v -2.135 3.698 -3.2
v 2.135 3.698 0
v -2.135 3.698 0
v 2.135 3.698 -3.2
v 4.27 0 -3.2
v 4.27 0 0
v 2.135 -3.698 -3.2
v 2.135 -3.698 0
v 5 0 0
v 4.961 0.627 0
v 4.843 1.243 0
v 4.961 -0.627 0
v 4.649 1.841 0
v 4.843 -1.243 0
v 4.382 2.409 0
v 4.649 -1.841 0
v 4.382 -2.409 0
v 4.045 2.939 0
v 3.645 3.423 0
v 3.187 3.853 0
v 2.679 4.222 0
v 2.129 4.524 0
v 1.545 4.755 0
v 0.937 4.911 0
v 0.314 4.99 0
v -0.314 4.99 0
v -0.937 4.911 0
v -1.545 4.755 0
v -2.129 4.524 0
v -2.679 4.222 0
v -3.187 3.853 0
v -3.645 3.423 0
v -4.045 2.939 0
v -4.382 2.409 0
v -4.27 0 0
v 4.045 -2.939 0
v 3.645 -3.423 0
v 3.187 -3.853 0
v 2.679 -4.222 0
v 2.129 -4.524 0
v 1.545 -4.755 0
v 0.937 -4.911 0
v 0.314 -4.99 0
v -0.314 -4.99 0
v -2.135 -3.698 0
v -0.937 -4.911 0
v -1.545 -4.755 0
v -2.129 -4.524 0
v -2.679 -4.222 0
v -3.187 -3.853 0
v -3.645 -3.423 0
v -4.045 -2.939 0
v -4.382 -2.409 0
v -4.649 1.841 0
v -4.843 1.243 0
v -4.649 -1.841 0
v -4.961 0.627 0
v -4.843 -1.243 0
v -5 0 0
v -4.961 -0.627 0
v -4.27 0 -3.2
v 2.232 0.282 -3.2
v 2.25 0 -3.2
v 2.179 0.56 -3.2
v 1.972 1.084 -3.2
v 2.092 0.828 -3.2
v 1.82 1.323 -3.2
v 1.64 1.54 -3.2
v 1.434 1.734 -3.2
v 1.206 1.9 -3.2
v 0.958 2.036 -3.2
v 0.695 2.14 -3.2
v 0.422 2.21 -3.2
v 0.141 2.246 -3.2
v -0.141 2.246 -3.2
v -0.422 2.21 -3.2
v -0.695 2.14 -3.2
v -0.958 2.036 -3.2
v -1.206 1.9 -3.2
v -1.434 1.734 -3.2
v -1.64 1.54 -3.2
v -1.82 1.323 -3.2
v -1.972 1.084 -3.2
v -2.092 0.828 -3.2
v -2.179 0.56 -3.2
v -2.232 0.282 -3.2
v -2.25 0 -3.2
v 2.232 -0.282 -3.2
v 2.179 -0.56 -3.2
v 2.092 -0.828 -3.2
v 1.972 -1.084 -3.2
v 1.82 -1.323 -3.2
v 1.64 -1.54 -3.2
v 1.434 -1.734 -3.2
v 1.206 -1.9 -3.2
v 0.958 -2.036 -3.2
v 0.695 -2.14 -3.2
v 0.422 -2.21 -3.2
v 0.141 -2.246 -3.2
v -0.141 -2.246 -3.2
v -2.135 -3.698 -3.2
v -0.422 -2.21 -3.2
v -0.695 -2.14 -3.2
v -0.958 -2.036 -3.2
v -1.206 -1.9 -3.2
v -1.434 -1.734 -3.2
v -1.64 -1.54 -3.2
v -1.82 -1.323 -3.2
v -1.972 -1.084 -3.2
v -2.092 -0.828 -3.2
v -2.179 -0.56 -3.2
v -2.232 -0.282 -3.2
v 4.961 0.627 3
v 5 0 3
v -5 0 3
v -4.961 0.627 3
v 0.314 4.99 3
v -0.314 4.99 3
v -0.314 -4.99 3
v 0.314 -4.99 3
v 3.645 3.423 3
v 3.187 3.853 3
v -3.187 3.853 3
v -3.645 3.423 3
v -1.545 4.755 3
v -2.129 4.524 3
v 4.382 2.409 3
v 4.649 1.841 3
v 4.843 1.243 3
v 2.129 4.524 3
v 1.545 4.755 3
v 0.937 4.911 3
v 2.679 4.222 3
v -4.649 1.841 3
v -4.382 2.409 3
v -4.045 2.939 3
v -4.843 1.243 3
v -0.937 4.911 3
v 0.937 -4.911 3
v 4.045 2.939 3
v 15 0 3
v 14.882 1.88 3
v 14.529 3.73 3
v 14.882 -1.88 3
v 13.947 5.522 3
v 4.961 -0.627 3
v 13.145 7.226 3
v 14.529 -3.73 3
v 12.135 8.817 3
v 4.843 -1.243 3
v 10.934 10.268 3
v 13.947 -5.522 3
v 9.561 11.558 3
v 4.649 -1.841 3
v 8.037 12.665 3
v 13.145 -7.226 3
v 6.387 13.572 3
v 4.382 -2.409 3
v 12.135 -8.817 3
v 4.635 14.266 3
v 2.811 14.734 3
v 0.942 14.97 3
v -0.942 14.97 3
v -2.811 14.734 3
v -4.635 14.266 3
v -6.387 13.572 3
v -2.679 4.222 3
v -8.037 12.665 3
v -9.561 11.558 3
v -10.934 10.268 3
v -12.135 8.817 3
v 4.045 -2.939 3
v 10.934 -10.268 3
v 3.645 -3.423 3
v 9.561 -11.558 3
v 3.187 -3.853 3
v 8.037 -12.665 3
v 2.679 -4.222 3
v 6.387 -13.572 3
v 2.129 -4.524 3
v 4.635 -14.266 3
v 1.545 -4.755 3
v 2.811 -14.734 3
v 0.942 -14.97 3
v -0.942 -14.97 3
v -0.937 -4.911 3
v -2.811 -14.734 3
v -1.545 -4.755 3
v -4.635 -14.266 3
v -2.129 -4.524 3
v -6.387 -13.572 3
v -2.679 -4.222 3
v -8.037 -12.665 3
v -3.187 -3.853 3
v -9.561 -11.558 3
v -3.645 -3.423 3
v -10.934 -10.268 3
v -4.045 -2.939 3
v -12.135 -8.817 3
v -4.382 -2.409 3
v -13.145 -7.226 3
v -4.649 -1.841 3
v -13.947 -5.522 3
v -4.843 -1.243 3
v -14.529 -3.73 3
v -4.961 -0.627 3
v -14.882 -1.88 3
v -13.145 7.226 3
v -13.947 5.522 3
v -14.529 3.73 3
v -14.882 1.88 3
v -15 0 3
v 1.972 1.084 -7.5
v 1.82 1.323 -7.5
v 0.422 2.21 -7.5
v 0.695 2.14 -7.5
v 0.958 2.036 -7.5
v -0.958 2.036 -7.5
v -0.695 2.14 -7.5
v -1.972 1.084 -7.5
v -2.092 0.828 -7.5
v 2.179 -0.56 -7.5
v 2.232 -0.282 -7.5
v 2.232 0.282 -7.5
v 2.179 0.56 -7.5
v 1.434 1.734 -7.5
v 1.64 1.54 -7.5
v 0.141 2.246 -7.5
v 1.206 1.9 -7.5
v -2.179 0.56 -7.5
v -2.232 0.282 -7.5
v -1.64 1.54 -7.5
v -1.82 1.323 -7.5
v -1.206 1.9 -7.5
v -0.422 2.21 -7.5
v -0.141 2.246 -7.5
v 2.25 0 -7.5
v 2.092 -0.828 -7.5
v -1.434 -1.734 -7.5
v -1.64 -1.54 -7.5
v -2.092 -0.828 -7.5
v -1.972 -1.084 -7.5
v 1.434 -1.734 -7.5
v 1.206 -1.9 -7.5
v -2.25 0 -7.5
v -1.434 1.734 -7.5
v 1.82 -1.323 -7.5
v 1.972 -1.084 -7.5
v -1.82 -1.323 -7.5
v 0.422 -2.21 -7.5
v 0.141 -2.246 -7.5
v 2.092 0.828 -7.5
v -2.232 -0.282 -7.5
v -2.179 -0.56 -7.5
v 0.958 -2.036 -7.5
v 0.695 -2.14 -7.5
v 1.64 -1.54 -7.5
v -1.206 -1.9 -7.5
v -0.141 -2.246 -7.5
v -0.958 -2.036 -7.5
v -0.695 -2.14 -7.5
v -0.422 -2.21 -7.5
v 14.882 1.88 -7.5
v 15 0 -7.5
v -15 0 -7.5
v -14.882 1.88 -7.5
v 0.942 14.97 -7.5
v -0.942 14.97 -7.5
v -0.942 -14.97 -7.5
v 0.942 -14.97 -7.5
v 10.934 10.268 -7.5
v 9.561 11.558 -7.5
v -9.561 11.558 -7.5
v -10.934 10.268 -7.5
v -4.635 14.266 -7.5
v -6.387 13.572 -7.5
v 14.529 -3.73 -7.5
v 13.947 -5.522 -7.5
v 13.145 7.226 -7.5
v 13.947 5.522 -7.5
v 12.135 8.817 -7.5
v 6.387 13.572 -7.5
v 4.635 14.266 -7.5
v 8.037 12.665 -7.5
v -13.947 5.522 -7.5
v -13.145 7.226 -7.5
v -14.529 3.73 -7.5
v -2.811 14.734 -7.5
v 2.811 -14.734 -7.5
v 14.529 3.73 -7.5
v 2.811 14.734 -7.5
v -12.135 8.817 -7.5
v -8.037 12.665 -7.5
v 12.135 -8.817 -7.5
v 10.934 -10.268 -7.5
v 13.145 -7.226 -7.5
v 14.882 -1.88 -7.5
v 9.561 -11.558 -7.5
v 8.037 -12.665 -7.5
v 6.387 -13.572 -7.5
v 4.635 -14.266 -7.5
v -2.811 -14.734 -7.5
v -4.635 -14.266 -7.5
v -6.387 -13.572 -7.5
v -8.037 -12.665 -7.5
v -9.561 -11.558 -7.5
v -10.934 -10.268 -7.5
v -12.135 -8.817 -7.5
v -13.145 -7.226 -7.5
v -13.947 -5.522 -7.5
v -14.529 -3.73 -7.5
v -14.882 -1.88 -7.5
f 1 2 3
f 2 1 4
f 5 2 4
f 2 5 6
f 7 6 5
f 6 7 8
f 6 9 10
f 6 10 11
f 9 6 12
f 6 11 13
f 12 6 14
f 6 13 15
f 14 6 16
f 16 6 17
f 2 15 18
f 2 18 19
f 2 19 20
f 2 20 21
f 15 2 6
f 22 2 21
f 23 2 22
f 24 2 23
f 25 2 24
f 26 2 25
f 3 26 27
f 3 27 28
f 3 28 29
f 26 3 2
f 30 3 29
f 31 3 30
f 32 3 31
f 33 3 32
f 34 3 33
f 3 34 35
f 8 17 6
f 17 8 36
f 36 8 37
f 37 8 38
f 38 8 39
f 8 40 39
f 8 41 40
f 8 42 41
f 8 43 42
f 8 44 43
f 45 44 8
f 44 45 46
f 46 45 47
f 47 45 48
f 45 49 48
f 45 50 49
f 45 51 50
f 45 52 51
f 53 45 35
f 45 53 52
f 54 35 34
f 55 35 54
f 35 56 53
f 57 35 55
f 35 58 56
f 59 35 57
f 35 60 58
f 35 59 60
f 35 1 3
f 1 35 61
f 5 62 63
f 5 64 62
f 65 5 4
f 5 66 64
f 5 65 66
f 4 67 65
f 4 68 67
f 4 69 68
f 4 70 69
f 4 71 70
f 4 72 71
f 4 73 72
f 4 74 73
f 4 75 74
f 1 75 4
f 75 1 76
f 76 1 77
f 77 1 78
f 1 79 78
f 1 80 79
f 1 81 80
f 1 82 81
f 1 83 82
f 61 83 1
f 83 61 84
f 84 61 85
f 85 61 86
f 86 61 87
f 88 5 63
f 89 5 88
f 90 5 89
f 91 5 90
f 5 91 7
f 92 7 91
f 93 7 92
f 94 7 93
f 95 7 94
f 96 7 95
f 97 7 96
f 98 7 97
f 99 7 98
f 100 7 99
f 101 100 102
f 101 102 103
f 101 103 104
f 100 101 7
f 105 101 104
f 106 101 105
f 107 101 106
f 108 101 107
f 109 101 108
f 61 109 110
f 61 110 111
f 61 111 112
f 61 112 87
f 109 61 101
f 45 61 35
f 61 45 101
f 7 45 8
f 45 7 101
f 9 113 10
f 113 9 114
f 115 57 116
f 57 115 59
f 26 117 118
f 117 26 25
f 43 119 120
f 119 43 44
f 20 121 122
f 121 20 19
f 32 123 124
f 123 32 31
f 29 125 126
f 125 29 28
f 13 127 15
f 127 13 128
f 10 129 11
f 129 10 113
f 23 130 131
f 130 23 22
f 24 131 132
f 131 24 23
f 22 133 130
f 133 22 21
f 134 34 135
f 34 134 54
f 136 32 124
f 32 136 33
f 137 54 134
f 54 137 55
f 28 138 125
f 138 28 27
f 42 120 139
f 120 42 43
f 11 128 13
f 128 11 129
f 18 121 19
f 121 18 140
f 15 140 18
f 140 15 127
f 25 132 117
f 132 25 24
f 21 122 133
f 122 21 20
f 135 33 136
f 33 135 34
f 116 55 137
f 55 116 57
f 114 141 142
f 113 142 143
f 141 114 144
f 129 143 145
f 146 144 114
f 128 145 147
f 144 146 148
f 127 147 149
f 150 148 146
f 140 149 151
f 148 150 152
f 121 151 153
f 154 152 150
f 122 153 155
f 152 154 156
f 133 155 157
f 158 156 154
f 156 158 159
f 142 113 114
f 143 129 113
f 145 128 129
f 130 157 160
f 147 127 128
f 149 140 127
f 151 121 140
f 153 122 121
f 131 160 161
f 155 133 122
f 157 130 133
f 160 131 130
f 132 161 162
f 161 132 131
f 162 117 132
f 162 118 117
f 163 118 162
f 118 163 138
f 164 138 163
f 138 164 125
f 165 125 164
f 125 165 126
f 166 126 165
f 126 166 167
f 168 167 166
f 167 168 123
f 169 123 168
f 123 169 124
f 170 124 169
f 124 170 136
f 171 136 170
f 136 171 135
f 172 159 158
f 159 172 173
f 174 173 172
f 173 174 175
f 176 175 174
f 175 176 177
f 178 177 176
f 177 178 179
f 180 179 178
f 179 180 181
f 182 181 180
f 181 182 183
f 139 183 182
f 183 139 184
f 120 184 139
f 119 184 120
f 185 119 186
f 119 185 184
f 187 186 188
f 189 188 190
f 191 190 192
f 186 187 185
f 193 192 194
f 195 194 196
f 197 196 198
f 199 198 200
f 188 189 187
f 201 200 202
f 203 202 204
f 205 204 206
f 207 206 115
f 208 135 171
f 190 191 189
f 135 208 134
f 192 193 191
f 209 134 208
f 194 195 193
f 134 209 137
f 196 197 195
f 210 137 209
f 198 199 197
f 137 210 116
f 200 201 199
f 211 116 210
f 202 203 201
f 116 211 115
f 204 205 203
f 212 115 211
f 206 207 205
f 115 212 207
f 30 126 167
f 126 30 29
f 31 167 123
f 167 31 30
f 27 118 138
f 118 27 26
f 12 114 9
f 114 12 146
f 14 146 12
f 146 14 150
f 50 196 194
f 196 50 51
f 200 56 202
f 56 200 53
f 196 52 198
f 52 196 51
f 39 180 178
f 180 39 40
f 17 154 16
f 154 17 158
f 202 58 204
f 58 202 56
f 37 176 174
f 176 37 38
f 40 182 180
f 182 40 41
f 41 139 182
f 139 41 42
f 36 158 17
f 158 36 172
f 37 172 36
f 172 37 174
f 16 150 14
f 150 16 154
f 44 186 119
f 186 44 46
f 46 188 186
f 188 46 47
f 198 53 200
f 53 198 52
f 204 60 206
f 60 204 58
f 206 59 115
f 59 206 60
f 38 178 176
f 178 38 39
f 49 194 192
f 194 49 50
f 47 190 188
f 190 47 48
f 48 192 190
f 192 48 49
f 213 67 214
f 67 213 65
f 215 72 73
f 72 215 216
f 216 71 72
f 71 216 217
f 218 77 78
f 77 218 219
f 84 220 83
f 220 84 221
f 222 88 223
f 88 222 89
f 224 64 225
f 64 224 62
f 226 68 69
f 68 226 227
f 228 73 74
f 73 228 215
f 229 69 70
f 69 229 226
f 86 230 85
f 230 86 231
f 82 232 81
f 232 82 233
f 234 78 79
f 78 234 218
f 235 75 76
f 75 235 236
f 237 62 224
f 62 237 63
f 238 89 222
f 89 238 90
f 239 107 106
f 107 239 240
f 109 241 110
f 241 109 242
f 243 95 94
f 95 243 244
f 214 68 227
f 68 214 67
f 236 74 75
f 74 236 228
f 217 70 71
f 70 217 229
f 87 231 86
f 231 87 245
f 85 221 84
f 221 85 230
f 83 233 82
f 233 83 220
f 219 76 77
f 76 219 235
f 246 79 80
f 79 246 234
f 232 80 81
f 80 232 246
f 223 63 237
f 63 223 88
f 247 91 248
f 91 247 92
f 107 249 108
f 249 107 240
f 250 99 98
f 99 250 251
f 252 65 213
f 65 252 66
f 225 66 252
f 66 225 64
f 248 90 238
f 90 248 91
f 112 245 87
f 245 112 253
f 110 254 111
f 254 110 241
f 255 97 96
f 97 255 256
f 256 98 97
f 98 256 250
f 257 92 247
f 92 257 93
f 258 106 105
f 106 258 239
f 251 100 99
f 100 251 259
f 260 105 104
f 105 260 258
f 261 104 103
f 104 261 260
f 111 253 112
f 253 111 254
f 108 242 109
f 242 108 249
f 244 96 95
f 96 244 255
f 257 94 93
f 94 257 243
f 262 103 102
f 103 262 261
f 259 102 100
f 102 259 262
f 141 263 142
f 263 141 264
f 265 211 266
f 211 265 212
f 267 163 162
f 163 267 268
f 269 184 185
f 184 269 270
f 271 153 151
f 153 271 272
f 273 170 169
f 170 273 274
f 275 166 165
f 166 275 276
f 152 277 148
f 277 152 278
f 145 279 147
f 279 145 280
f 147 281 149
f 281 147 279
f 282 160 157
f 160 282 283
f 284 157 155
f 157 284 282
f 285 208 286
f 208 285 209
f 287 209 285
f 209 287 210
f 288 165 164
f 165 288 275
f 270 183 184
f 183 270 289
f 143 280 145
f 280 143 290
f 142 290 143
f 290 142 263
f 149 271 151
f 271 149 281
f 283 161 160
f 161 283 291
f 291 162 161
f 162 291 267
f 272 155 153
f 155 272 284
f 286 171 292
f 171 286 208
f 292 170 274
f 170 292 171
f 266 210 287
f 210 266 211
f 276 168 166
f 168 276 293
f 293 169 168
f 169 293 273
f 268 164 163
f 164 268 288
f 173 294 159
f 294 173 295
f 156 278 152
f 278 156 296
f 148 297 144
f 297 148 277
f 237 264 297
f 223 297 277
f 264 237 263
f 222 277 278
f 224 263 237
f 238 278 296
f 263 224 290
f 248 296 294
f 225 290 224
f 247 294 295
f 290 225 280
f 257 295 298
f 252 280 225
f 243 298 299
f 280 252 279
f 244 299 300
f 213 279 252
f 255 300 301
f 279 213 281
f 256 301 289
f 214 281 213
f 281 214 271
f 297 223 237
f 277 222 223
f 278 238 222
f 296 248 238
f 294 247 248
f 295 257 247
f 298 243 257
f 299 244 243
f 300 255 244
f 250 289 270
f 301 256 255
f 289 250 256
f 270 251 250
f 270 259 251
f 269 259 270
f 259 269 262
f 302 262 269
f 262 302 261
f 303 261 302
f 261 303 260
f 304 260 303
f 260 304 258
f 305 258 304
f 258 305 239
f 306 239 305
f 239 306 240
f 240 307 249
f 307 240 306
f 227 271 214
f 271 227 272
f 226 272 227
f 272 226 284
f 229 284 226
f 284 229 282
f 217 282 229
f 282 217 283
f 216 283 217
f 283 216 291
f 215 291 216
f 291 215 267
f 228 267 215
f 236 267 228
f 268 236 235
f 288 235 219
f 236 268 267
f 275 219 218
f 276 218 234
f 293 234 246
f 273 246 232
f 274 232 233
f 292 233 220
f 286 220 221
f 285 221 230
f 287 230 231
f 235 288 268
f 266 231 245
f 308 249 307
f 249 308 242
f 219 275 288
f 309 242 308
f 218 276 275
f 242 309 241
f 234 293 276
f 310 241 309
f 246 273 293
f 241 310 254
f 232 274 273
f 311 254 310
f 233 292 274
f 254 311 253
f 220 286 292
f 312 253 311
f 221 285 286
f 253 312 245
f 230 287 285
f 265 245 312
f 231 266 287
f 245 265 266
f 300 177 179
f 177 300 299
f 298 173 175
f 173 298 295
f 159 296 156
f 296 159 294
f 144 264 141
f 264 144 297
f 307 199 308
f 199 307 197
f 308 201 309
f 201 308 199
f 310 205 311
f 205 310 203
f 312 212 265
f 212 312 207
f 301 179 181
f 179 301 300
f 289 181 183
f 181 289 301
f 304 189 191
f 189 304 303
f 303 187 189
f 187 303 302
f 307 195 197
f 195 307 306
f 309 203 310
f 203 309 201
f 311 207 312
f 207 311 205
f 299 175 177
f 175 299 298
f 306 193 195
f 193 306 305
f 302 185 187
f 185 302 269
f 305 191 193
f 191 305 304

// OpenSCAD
$fn = 50;


difference() {
	union() {
		translate(v = [0, 0, -7.5000000000]) {
			cylinder(h = 10.5000000000, r = 15.0000000000);
		}
	}
	union() {
		translate(v = [0, 0, 0]) {
			rotate(a = [0, 0, 0]) {
				difference() {
					union() {
						translate(v = [0, 0, -3.2000000000]) {
							linear_extrude(height = 3.2000000000) {
								polygon(points = [[4.2698000000, 0.0000000000], [2.1349000000, 3.6977552691], [-2.1349000000, 3.6977552691], [-4.2698000000, 0.0000000000], [-2.1349000000, -3.6977552691], [2.1349000000, -3.6977552691]]);
							}
						}
					}
					union();
				}
			}
		}
		#cylinder(h = 3, r = 5.0000000000);
		#translate(v = [0, 0, -100.0000000000]) {
			cylinder(h = 200, r = 2.2500000000);
		}
	}
}
